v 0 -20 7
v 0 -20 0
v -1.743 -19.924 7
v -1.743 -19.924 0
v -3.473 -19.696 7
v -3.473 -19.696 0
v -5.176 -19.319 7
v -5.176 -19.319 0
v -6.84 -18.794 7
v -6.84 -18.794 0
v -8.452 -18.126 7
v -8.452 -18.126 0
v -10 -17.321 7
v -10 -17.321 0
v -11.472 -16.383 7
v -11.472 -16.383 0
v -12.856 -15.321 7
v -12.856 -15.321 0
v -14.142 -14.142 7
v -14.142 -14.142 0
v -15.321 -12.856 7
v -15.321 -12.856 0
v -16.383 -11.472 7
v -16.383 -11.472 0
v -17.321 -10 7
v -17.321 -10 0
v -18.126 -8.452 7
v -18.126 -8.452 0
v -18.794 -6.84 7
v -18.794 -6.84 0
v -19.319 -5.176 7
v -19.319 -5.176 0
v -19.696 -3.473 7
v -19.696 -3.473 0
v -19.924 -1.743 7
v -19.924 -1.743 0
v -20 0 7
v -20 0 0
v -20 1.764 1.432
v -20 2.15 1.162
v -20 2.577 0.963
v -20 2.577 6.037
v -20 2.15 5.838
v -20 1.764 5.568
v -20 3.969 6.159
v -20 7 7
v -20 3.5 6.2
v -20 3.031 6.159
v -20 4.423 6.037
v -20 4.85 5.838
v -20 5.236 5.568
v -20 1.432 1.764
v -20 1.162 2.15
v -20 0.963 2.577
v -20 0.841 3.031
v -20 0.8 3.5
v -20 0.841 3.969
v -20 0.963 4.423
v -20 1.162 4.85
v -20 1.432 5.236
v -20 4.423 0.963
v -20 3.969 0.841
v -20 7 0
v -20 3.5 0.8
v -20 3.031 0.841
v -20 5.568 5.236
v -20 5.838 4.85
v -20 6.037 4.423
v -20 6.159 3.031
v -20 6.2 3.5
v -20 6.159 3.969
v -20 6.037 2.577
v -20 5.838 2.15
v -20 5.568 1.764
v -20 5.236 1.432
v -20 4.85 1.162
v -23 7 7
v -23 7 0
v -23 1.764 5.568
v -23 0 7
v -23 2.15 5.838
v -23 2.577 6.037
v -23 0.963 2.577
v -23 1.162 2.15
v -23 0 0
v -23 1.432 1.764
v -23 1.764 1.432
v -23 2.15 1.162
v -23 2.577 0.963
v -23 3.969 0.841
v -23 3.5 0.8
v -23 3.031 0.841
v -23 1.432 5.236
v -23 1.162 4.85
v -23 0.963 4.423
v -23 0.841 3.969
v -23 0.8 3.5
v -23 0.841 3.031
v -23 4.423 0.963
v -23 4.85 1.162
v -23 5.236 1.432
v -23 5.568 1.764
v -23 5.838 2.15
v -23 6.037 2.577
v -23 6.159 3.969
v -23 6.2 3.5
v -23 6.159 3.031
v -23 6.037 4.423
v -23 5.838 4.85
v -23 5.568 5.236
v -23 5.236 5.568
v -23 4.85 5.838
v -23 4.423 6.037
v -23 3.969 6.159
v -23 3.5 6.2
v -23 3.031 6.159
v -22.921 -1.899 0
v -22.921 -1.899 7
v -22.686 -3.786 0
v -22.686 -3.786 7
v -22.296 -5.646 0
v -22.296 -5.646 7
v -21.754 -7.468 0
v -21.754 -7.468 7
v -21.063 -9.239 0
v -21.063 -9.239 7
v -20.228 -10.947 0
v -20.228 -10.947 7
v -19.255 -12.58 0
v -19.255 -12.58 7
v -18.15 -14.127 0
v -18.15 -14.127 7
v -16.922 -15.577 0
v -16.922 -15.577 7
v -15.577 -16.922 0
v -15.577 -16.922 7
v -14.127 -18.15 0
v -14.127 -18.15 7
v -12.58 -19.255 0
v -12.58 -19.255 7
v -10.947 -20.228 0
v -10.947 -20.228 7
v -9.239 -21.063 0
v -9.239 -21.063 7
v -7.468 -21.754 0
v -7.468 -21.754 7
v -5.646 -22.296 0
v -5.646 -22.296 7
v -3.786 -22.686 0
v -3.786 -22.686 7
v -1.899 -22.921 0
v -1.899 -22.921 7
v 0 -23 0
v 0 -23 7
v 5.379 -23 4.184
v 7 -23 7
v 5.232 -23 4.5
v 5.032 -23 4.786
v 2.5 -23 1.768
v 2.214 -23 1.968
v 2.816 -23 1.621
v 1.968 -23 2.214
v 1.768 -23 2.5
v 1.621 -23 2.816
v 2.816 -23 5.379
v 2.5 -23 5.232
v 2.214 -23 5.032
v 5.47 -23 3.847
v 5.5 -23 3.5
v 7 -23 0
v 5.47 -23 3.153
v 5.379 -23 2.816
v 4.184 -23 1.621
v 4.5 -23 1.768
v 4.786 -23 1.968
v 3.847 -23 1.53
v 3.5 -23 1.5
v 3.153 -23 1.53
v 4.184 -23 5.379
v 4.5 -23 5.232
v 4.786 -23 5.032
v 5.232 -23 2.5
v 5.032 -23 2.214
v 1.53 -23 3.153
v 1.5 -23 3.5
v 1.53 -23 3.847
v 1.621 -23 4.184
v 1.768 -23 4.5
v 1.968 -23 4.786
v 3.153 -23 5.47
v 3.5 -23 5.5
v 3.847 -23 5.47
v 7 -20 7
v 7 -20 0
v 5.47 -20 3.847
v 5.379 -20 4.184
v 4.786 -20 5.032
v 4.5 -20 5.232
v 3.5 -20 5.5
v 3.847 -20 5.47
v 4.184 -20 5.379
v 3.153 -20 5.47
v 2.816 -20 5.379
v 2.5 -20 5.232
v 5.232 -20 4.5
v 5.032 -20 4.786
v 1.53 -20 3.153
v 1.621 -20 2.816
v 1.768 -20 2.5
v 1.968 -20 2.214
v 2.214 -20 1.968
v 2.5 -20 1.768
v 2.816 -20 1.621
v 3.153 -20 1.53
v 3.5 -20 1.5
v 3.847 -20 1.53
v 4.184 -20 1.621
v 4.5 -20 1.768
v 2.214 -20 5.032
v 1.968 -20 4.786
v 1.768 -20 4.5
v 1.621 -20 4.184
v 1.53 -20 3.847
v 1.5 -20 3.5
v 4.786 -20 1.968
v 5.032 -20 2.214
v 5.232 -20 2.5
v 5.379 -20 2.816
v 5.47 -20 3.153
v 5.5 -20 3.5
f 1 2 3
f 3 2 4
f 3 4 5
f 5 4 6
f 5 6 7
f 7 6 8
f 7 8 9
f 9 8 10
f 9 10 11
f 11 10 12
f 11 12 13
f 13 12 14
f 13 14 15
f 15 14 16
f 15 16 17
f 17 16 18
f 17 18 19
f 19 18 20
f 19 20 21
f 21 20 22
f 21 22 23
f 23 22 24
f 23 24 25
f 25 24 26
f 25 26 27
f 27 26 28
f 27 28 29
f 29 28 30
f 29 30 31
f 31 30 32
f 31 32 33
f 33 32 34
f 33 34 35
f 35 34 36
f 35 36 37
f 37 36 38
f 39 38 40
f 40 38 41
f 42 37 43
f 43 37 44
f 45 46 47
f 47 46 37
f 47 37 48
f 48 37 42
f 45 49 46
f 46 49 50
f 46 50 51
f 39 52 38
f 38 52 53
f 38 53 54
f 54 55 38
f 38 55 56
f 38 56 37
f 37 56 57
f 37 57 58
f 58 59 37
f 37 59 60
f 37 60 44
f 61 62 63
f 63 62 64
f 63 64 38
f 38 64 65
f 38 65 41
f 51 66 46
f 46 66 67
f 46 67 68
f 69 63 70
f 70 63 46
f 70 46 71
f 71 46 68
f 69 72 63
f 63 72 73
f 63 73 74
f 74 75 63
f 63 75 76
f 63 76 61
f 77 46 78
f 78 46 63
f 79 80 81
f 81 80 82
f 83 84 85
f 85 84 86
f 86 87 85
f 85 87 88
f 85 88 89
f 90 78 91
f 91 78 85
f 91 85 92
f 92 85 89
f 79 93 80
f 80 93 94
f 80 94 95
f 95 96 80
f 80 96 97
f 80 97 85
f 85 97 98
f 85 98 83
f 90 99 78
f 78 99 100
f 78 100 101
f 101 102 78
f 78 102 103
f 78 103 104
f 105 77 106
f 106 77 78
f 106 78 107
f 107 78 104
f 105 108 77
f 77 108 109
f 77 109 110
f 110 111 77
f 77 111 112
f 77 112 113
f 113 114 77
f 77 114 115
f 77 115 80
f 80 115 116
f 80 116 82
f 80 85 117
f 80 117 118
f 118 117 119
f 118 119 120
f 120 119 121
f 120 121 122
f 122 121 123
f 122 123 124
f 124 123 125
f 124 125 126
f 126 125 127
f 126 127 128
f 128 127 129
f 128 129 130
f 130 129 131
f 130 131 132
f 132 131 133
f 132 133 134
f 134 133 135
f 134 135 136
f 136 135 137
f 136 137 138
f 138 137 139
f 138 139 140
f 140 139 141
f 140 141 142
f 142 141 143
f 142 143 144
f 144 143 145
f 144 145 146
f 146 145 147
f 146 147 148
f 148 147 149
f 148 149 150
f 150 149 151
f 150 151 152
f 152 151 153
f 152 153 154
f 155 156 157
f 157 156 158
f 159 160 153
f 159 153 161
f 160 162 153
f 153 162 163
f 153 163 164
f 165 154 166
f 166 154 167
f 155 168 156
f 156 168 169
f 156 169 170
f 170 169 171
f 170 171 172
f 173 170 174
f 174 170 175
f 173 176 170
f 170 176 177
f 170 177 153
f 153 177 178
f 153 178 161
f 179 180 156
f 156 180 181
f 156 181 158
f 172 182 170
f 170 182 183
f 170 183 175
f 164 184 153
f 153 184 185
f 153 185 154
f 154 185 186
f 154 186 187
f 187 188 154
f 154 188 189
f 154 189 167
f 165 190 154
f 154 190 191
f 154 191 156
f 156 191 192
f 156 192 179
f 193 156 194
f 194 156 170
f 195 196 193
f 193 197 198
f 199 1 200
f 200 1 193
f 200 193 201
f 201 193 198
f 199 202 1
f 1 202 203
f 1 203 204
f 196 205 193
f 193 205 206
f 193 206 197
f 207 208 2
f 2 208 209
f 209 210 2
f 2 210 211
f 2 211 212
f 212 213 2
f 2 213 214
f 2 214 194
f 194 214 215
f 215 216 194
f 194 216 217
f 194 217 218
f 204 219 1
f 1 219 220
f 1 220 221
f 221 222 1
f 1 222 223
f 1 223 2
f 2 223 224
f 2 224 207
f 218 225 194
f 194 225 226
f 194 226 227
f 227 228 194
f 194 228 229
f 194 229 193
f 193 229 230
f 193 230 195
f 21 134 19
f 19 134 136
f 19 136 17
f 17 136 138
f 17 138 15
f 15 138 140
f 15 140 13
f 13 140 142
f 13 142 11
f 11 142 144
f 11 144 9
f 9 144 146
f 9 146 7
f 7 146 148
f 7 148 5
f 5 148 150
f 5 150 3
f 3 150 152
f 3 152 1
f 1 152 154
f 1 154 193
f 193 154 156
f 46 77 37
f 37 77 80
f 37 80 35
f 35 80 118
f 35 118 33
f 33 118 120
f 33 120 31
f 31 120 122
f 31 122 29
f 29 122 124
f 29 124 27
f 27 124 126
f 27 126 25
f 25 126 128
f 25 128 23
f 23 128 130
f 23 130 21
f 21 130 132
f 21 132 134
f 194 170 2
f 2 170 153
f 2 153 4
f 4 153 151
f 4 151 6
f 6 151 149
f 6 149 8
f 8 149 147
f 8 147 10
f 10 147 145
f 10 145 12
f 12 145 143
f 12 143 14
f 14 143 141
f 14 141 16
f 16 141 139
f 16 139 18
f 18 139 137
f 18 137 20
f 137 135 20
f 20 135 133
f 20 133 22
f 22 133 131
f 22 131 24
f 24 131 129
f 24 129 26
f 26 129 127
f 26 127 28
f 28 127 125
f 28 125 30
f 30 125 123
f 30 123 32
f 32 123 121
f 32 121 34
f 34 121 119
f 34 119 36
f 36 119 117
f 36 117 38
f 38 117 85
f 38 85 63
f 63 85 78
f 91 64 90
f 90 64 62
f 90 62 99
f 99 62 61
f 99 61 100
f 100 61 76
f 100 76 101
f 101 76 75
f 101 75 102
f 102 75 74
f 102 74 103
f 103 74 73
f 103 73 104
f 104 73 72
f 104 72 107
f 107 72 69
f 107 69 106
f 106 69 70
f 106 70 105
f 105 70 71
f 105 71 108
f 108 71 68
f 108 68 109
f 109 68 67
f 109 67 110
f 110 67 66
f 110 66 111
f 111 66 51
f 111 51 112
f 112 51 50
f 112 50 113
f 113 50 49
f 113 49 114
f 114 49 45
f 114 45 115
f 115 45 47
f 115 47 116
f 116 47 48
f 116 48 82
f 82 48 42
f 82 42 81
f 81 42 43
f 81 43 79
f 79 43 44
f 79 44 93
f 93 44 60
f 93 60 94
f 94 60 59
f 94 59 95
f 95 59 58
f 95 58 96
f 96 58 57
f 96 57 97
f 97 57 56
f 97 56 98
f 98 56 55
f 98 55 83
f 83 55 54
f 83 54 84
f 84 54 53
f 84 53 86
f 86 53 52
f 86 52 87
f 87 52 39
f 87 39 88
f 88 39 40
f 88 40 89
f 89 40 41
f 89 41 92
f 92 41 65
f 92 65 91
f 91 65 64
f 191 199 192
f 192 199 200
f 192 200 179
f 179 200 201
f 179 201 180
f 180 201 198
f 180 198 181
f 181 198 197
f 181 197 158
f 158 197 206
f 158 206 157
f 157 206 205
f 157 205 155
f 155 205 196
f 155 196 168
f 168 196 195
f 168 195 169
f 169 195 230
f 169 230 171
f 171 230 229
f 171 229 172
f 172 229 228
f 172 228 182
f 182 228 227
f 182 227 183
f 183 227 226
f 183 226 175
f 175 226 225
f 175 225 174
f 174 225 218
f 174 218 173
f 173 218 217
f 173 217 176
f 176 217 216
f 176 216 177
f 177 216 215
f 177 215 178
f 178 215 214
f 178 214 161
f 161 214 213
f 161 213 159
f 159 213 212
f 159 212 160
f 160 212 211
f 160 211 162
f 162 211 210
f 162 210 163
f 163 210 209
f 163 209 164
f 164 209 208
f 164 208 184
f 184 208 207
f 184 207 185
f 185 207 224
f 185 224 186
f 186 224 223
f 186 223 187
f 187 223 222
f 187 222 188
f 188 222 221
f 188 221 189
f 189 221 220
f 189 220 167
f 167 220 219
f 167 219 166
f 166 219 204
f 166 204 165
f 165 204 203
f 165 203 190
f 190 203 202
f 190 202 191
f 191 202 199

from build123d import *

# Parameters (mm, degrees)
BOSS_EXTRUDE1_DEPTH = 7
SKETCH2_R           = 2.7
CUT_EXTRUDE1_DEPTH  = 4
SKETCH4_R           = 2
CUT_EXTRUDE2_DEPTH  = 10


with BuildPart() as part:
    # Sketch1 → Boss-Extrude1 (new body)
    with BuildSketch(Plane.XY):
        with BuildLine():
            Line((-20, 0), (-20, 7))
            Line((-20, 7), (-23, 7))
            Line((-23, 7), (-23, 0))
            ThreePointArc((-23, 0), (-16.263455967, -16.263455967), (0, -23))
            Line((0, -23), (7, -23))
            Line((7, -23), (7, -20))
            Line((7, -20), (0, -20))
            ThreePointArc((0, -20), (-14.142135624, -14.142135624), (-20, 0))
        make_face()
    extrude(amount=BOSS_EXTRUDE1_DEPTH)

    # Sketch2 → Cut-Extrude1 (cut, through all)
    with BuildSketch(Plane(origin=(-20, 0, 0), x_dir=(0, 0, -1), z_dir=(1, 0, 0))):
        with Locations((-3.5, 3.5)):
            Circle(SKETCH2_R)
    extrude(amount=-CUT_EXTRUDE1_DEPTH, mode=Mode.SUBTRACT)

    # Sketch4 → Cut-Extrude2 (cut)
    with BuildSketch(Plane(origin=(0, -20, 0), x_dir=(1, 0, 0), z_dir=(0, 1, 0))):
        with Locations((3.5, -3.5)):
            Circle(SKETCH4_R)
    extrude(amount=-CUT_EXTRUDE2_DEPTH, mode=Mode.SUBTRACT)


solid = part.part
